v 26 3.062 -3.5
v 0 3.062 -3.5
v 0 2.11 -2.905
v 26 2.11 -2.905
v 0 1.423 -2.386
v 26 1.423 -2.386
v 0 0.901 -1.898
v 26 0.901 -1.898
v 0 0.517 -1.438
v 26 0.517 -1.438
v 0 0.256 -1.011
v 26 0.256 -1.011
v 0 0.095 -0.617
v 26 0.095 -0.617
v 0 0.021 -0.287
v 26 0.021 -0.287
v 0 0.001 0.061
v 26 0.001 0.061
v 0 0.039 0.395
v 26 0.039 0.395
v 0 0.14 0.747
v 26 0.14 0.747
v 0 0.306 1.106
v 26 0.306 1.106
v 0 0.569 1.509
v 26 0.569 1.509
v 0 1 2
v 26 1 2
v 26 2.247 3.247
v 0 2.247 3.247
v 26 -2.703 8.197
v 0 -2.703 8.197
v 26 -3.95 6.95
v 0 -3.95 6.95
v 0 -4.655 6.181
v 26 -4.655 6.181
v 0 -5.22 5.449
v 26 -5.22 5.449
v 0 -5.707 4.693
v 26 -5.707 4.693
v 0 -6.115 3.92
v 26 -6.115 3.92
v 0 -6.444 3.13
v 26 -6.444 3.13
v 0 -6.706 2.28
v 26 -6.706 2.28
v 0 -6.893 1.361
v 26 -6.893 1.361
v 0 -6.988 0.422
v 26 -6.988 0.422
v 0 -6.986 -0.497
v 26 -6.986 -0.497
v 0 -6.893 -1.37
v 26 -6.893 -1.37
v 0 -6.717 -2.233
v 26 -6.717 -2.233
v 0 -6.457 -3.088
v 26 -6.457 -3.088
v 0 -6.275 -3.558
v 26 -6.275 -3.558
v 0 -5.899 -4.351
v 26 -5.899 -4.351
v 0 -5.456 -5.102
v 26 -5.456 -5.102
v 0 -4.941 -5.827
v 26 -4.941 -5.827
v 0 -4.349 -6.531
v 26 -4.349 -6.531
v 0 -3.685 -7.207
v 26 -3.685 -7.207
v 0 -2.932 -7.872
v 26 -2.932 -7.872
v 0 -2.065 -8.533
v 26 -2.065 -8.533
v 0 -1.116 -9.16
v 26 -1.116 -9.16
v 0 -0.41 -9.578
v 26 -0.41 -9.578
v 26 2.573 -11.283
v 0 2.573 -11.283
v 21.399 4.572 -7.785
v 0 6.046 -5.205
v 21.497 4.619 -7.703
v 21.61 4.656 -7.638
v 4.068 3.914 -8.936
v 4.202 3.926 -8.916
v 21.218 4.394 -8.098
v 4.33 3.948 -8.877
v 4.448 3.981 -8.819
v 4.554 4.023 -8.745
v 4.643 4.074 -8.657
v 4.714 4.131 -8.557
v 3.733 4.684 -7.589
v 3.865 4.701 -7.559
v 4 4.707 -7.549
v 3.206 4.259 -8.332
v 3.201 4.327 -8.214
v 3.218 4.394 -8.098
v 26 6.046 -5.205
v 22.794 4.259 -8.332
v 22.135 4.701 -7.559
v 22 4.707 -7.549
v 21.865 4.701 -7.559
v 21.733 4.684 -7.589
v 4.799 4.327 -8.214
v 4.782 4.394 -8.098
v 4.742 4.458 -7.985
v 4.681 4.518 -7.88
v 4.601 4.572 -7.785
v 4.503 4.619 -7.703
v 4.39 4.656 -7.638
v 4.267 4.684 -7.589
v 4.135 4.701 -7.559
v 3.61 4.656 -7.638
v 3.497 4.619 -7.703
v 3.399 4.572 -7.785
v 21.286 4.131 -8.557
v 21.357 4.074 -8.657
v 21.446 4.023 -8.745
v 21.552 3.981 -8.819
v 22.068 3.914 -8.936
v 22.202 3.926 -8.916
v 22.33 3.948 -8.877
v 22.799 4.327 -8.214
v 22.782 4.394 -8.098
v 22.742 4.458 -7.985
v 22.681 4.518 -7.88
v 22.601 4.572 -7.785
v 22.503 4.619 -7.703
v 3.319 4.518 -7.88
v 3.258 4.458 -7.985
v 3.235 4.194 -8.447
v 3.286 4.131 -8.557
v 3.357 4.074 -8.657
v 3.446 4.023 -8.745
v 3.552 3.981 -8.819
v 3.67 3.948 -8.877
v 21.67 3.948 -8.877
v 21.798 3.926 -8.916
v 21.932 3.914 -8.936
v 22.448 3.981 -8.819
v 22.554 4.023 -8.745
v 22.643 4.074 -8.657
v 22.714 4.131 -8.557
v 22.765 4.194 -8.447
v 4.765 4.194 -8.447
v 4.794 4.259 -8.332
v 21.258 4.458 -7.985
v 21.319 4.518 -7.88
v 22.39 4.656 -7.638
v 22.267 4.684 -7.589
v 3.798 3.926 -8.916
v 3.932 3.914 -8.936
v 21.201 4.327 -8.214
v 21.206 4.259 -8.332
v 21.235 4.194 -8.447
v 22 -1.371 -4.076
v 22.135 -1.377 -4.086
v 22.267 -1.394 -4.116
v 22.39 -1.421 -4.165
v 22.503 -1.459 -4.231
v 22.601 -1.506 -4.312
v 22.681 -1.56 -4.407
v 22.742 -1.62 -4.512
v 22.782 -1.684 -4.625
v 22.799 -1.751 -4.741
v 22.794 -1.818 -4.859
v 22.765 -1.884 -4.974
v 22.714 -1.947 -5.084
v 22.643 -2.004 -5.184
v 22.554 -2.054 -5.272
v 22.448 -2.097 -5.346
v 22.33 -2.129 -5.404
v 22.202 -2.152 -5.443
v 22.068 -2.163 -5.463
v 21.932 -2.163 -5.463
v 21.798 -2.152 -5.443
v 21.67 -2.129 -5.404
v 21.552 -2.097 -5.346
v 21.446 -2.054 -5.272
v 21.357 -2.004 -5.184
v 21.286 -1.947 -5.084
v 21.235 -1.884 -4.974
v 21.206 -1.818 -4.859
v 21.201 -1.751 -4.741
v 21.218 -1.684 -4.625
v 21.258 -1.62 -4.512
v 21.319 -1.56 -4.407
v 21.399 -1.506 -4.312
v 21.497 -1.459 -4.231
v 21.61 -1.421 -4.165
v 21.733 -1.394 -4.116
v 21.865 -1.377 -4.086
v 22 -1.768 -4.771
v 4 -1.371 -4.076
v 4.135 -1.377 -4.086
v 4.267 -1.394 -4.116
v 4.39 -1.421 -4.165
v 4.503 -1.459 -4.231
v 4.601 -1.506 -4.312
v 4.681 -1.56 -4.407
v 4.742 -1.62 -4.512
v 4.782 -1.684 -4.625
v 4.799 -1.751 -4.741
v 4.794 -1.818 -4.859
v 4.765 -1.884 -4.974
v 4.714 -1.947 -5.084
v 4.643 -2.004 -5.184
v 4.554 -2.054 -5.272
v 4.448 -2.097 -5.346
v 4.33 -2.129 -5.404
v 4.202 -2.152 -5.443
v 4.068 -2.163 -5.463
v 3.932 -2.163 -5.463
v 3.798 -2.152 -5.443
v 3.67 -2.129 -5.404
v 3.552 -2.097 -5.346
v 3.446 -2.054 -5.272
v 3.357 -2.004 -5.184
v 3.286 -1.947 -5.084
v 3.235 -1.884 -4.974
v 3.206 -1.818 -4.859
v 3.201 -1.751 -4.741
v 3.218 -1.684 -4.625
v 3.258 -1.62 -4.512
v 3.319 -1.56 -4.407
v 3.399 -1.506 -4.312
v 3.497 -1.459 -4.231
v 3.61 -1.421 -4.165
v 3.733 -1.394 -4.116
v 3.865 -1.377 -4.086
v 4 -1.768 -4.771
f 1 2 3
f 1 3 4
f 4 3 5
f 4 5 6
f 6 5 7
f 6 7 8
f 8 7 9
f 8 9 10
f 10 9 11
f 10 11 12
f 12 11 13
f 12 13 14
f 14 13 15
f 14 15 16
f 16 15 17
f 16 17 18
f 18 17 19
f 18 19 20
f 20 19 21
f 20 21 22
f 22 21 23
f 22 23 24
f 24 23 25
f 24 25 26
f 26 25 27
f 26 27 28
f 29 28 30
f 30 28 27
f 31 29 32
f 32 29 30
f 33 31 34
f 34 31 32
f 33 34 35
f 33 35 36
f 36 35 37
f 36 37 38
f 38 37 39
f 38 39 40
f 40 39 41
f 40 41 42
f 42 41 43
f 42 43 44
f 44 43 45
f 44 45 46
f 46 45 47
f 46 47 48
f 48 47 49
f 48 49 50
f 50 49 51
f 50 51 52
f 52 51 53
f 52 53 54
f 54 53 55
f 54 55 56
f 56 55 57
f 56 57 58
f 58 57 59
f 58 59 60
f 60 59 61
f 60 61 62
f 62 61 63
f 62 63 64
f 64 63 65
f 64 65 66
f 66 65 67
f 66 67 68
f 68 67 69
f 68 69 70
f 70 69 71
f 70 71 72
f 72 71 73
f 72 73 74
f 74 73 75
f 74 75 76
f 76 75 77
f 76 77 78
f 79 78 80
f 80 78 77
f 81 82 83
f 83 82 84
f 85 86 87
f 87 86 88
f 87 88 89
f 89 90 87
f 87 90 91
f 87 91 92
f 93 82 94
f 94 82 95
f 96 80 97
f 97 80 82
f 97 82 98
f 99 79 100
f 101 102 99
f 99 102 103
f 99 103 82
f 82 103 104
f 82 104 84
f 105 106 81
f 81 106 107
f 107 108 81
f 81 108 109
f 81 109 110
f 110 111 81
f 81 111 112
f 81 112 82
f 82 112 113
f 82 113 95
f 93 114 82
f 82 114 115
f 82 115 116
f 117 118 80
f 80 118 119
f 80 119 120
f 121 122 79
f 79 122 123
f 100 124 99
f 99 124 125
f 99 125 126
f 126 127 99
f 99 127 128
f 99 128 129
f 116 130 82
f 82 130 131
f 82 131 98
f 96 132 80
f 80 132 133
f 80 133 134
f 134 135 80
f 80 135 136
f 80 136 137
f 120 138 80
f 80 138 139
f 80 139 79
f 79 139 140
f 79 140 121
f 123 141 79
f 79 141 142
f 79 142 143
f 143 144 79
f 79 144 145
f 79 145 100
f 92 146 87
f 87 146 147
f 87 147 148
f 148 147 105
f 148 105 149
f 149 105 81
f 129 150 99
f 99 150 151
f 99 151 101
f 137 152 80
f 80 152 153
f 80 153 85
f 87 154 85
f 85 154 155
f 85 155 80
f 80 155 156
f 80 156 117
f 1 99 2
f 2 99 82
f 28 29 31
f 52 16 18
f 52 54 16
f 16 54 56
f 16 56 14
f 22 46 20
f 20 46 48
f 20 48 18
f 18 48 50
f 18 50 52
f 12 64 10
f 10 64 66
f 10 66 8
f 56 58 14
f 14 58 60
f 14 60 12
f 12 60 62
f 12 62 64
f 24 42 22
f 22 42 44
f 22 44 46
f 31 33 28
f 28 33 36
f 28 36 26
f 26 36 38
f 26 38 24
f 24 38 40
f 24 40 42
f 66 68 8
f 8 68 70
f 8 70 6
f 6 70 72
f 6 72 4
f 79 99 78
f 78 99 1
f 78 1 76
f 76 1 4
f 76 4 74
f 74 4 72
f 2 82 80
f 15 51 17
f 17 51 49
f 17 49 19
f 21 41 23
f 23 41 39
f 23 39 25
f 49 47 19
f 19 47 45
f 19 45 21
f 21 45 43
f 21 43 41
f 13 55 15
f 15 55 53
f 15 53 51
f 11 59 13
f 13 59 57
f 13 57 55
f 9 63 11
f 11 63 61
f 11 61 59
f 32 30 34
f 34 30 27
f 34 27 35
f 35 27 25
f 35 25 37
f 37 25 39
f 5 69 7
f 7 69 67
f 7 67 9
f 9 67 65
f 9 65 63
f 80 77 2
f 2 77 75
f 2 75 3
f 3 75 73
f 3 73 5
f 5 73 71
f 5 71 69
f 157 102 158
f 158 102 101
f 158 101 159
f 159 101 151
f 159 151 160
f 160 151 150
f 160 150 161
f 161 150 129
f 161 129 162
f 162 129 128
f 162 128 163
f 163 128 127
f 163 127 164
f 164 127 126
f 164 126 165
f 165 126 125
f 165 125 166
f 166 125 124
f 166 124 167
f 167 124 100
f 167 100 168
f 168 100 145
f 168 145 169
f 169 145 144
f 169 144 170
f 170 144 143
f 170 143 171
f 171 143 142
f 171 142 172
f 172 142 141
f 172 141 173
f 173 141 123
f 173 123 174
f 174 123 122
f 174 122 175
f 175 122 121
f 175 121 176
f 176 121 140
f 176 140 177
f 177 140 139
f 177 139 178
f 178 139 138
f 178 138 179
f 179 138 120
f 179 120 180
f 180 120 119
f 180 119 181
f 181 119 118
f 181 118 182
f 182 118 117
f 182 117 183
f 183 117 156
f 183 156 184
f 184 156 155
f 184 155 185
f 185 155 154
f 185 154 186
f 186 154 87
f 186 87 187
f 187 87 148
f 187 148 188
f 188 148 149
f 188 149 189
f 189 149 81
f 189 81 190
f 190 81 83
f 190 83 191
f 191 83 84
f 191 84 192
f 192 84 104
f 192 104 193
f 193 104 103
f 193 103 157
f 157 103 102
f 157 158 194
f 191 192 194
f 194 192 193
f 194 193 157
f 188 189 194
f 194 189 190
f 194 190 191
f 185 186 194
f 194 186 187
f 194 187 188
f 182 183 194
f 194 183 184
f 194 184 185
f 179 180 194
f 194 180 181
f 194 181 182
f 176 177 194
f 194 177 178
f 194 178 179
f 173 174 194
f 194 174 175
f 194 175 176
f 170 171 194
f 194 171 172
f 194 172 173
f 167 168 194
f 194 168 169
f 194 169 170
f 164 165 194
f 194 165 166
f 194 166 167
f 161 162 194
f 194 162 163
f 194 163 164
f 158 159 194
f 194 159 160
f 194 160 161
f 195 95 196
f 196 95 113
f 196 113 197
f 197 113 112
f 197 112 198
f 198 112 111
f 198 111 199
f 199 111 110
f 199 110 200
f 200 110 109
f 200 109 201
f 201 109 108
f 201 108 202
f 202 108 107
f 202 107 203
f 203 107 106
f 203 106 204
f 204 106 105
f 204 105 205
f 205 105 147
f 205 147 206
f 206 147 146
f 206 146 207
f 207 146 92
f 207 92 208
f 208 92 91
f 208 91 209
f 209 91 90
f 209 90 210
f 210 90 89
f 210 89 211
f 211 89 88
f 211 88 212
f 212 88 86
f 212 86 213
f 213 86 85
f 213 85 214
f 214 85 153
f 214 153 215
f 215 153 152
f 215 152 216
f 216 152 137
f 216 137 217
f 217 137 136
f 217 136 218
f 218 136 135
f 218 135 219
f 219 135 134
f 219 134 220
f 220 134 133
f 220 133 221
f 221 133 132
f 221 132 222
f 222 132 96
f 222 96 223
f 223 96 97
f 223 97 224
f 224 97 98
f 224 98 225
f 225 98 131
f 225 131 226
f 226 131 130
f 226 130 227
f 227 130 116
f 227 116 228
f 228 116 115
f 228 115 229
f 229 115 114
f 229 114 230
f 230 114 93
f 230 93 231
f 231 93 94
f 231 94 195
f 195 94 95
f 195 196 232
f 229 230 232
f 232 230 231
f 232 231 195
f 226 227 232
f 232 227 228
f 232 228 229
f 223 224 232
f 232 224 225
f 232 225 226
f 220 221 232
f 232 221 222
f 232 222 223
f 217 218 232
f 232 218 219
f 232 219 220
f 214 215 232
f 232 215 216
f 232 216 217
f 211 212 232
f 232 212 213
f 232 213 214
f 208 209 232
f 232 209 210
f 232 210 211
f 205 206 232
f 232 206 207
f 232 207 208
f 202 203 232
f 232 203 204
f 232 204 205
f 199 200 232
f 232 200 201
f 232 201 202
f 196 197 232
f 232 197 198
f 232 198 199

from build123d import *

# Parameters (mm, degrees)
BOSS_EXTRUDE1_DEPTH = 26
SKETCH3_R           = 0.8
CUT_EXTRUDE1_DEPTH  = 7


with BuildPart() as part:
    # Sketch1 → Boss-Extrude1 (new body)
    with BuildSketch(Plane(origin=(0, 0, 0), x_dir=(0, 0, -1), z_dir=(1, 0, 0))):
        with BuildLine():
            Line((3.5, 3.0625), (5.205065915, 6.046365351))
            Line((5.205065915, 6.046365351), (11.28276791, 2.573392782))
            Line((11.28276791, 2.573392782), (9.577701995, -0.410472568))
            add(Edge.make_bspline(
                [(-6.949747468, -3.949747468), (-6.685368266, -4.214126671), (-6.147554271, -4.708312104), (-4.8590745, -5.674523534), (-2.826984501, -6.712797376), (0.295880791, -7.18416331), (3.330320935, -6.524197206), (5.630020015, -5.201123324), (7.839744032, -3.168086519), (8.912819335, -1.574017223), (9.577701995, -0.410472568)],
                knots=[0.075491359, 0.075491359, 0.075491359, 0.075491359, 0.129884041, 0.184276723, 0.293062086, 0.401847449, 0.510632813, 0.619418176, 0.72820354, 0.945774267, 0.945774267, 0.945774267, 0.945774267], degree=3))
            Line((-6.949747468, -3.949747468), (-8.196862299, -2.702632638))
            Line((-8.196862299, -2.702632638), (-3.24711483, 2.24711483))
            Line((-3.24711483, 2.24711483), (-2, 1))
            add(Edge.make_bspline(
                [(-2, 1), (0.75, -1.75), (3.5, 3.0625)],
                knots=[0.075491359, 0.075491359, 0.075491359, 0.945774267, 0.945774267, 0.945774267], degree=2))
        make_face()
    extrude(amount=BOSS_EXTRUDE1_DEPTH)

    # Sketch3 → Cut-Extrude1 (cut)
    with BuildSketch(Plane(origin=(0, 7.641933234, -2.41282212), x_dir=(1, 0, 0), z_dir=(0, 0.868243142, -0.496138938))):
        with Locations((4, 6.715969882)):
            Circle(SKETCH3_R)
        with Locations((22, 6.715969882)):
            Circle(SKETCH3_R)
    extrude(amount=-CUT_EXTRUDE1_DEPTH, mode=Mode.SUBTRACT)


solid = part.part
